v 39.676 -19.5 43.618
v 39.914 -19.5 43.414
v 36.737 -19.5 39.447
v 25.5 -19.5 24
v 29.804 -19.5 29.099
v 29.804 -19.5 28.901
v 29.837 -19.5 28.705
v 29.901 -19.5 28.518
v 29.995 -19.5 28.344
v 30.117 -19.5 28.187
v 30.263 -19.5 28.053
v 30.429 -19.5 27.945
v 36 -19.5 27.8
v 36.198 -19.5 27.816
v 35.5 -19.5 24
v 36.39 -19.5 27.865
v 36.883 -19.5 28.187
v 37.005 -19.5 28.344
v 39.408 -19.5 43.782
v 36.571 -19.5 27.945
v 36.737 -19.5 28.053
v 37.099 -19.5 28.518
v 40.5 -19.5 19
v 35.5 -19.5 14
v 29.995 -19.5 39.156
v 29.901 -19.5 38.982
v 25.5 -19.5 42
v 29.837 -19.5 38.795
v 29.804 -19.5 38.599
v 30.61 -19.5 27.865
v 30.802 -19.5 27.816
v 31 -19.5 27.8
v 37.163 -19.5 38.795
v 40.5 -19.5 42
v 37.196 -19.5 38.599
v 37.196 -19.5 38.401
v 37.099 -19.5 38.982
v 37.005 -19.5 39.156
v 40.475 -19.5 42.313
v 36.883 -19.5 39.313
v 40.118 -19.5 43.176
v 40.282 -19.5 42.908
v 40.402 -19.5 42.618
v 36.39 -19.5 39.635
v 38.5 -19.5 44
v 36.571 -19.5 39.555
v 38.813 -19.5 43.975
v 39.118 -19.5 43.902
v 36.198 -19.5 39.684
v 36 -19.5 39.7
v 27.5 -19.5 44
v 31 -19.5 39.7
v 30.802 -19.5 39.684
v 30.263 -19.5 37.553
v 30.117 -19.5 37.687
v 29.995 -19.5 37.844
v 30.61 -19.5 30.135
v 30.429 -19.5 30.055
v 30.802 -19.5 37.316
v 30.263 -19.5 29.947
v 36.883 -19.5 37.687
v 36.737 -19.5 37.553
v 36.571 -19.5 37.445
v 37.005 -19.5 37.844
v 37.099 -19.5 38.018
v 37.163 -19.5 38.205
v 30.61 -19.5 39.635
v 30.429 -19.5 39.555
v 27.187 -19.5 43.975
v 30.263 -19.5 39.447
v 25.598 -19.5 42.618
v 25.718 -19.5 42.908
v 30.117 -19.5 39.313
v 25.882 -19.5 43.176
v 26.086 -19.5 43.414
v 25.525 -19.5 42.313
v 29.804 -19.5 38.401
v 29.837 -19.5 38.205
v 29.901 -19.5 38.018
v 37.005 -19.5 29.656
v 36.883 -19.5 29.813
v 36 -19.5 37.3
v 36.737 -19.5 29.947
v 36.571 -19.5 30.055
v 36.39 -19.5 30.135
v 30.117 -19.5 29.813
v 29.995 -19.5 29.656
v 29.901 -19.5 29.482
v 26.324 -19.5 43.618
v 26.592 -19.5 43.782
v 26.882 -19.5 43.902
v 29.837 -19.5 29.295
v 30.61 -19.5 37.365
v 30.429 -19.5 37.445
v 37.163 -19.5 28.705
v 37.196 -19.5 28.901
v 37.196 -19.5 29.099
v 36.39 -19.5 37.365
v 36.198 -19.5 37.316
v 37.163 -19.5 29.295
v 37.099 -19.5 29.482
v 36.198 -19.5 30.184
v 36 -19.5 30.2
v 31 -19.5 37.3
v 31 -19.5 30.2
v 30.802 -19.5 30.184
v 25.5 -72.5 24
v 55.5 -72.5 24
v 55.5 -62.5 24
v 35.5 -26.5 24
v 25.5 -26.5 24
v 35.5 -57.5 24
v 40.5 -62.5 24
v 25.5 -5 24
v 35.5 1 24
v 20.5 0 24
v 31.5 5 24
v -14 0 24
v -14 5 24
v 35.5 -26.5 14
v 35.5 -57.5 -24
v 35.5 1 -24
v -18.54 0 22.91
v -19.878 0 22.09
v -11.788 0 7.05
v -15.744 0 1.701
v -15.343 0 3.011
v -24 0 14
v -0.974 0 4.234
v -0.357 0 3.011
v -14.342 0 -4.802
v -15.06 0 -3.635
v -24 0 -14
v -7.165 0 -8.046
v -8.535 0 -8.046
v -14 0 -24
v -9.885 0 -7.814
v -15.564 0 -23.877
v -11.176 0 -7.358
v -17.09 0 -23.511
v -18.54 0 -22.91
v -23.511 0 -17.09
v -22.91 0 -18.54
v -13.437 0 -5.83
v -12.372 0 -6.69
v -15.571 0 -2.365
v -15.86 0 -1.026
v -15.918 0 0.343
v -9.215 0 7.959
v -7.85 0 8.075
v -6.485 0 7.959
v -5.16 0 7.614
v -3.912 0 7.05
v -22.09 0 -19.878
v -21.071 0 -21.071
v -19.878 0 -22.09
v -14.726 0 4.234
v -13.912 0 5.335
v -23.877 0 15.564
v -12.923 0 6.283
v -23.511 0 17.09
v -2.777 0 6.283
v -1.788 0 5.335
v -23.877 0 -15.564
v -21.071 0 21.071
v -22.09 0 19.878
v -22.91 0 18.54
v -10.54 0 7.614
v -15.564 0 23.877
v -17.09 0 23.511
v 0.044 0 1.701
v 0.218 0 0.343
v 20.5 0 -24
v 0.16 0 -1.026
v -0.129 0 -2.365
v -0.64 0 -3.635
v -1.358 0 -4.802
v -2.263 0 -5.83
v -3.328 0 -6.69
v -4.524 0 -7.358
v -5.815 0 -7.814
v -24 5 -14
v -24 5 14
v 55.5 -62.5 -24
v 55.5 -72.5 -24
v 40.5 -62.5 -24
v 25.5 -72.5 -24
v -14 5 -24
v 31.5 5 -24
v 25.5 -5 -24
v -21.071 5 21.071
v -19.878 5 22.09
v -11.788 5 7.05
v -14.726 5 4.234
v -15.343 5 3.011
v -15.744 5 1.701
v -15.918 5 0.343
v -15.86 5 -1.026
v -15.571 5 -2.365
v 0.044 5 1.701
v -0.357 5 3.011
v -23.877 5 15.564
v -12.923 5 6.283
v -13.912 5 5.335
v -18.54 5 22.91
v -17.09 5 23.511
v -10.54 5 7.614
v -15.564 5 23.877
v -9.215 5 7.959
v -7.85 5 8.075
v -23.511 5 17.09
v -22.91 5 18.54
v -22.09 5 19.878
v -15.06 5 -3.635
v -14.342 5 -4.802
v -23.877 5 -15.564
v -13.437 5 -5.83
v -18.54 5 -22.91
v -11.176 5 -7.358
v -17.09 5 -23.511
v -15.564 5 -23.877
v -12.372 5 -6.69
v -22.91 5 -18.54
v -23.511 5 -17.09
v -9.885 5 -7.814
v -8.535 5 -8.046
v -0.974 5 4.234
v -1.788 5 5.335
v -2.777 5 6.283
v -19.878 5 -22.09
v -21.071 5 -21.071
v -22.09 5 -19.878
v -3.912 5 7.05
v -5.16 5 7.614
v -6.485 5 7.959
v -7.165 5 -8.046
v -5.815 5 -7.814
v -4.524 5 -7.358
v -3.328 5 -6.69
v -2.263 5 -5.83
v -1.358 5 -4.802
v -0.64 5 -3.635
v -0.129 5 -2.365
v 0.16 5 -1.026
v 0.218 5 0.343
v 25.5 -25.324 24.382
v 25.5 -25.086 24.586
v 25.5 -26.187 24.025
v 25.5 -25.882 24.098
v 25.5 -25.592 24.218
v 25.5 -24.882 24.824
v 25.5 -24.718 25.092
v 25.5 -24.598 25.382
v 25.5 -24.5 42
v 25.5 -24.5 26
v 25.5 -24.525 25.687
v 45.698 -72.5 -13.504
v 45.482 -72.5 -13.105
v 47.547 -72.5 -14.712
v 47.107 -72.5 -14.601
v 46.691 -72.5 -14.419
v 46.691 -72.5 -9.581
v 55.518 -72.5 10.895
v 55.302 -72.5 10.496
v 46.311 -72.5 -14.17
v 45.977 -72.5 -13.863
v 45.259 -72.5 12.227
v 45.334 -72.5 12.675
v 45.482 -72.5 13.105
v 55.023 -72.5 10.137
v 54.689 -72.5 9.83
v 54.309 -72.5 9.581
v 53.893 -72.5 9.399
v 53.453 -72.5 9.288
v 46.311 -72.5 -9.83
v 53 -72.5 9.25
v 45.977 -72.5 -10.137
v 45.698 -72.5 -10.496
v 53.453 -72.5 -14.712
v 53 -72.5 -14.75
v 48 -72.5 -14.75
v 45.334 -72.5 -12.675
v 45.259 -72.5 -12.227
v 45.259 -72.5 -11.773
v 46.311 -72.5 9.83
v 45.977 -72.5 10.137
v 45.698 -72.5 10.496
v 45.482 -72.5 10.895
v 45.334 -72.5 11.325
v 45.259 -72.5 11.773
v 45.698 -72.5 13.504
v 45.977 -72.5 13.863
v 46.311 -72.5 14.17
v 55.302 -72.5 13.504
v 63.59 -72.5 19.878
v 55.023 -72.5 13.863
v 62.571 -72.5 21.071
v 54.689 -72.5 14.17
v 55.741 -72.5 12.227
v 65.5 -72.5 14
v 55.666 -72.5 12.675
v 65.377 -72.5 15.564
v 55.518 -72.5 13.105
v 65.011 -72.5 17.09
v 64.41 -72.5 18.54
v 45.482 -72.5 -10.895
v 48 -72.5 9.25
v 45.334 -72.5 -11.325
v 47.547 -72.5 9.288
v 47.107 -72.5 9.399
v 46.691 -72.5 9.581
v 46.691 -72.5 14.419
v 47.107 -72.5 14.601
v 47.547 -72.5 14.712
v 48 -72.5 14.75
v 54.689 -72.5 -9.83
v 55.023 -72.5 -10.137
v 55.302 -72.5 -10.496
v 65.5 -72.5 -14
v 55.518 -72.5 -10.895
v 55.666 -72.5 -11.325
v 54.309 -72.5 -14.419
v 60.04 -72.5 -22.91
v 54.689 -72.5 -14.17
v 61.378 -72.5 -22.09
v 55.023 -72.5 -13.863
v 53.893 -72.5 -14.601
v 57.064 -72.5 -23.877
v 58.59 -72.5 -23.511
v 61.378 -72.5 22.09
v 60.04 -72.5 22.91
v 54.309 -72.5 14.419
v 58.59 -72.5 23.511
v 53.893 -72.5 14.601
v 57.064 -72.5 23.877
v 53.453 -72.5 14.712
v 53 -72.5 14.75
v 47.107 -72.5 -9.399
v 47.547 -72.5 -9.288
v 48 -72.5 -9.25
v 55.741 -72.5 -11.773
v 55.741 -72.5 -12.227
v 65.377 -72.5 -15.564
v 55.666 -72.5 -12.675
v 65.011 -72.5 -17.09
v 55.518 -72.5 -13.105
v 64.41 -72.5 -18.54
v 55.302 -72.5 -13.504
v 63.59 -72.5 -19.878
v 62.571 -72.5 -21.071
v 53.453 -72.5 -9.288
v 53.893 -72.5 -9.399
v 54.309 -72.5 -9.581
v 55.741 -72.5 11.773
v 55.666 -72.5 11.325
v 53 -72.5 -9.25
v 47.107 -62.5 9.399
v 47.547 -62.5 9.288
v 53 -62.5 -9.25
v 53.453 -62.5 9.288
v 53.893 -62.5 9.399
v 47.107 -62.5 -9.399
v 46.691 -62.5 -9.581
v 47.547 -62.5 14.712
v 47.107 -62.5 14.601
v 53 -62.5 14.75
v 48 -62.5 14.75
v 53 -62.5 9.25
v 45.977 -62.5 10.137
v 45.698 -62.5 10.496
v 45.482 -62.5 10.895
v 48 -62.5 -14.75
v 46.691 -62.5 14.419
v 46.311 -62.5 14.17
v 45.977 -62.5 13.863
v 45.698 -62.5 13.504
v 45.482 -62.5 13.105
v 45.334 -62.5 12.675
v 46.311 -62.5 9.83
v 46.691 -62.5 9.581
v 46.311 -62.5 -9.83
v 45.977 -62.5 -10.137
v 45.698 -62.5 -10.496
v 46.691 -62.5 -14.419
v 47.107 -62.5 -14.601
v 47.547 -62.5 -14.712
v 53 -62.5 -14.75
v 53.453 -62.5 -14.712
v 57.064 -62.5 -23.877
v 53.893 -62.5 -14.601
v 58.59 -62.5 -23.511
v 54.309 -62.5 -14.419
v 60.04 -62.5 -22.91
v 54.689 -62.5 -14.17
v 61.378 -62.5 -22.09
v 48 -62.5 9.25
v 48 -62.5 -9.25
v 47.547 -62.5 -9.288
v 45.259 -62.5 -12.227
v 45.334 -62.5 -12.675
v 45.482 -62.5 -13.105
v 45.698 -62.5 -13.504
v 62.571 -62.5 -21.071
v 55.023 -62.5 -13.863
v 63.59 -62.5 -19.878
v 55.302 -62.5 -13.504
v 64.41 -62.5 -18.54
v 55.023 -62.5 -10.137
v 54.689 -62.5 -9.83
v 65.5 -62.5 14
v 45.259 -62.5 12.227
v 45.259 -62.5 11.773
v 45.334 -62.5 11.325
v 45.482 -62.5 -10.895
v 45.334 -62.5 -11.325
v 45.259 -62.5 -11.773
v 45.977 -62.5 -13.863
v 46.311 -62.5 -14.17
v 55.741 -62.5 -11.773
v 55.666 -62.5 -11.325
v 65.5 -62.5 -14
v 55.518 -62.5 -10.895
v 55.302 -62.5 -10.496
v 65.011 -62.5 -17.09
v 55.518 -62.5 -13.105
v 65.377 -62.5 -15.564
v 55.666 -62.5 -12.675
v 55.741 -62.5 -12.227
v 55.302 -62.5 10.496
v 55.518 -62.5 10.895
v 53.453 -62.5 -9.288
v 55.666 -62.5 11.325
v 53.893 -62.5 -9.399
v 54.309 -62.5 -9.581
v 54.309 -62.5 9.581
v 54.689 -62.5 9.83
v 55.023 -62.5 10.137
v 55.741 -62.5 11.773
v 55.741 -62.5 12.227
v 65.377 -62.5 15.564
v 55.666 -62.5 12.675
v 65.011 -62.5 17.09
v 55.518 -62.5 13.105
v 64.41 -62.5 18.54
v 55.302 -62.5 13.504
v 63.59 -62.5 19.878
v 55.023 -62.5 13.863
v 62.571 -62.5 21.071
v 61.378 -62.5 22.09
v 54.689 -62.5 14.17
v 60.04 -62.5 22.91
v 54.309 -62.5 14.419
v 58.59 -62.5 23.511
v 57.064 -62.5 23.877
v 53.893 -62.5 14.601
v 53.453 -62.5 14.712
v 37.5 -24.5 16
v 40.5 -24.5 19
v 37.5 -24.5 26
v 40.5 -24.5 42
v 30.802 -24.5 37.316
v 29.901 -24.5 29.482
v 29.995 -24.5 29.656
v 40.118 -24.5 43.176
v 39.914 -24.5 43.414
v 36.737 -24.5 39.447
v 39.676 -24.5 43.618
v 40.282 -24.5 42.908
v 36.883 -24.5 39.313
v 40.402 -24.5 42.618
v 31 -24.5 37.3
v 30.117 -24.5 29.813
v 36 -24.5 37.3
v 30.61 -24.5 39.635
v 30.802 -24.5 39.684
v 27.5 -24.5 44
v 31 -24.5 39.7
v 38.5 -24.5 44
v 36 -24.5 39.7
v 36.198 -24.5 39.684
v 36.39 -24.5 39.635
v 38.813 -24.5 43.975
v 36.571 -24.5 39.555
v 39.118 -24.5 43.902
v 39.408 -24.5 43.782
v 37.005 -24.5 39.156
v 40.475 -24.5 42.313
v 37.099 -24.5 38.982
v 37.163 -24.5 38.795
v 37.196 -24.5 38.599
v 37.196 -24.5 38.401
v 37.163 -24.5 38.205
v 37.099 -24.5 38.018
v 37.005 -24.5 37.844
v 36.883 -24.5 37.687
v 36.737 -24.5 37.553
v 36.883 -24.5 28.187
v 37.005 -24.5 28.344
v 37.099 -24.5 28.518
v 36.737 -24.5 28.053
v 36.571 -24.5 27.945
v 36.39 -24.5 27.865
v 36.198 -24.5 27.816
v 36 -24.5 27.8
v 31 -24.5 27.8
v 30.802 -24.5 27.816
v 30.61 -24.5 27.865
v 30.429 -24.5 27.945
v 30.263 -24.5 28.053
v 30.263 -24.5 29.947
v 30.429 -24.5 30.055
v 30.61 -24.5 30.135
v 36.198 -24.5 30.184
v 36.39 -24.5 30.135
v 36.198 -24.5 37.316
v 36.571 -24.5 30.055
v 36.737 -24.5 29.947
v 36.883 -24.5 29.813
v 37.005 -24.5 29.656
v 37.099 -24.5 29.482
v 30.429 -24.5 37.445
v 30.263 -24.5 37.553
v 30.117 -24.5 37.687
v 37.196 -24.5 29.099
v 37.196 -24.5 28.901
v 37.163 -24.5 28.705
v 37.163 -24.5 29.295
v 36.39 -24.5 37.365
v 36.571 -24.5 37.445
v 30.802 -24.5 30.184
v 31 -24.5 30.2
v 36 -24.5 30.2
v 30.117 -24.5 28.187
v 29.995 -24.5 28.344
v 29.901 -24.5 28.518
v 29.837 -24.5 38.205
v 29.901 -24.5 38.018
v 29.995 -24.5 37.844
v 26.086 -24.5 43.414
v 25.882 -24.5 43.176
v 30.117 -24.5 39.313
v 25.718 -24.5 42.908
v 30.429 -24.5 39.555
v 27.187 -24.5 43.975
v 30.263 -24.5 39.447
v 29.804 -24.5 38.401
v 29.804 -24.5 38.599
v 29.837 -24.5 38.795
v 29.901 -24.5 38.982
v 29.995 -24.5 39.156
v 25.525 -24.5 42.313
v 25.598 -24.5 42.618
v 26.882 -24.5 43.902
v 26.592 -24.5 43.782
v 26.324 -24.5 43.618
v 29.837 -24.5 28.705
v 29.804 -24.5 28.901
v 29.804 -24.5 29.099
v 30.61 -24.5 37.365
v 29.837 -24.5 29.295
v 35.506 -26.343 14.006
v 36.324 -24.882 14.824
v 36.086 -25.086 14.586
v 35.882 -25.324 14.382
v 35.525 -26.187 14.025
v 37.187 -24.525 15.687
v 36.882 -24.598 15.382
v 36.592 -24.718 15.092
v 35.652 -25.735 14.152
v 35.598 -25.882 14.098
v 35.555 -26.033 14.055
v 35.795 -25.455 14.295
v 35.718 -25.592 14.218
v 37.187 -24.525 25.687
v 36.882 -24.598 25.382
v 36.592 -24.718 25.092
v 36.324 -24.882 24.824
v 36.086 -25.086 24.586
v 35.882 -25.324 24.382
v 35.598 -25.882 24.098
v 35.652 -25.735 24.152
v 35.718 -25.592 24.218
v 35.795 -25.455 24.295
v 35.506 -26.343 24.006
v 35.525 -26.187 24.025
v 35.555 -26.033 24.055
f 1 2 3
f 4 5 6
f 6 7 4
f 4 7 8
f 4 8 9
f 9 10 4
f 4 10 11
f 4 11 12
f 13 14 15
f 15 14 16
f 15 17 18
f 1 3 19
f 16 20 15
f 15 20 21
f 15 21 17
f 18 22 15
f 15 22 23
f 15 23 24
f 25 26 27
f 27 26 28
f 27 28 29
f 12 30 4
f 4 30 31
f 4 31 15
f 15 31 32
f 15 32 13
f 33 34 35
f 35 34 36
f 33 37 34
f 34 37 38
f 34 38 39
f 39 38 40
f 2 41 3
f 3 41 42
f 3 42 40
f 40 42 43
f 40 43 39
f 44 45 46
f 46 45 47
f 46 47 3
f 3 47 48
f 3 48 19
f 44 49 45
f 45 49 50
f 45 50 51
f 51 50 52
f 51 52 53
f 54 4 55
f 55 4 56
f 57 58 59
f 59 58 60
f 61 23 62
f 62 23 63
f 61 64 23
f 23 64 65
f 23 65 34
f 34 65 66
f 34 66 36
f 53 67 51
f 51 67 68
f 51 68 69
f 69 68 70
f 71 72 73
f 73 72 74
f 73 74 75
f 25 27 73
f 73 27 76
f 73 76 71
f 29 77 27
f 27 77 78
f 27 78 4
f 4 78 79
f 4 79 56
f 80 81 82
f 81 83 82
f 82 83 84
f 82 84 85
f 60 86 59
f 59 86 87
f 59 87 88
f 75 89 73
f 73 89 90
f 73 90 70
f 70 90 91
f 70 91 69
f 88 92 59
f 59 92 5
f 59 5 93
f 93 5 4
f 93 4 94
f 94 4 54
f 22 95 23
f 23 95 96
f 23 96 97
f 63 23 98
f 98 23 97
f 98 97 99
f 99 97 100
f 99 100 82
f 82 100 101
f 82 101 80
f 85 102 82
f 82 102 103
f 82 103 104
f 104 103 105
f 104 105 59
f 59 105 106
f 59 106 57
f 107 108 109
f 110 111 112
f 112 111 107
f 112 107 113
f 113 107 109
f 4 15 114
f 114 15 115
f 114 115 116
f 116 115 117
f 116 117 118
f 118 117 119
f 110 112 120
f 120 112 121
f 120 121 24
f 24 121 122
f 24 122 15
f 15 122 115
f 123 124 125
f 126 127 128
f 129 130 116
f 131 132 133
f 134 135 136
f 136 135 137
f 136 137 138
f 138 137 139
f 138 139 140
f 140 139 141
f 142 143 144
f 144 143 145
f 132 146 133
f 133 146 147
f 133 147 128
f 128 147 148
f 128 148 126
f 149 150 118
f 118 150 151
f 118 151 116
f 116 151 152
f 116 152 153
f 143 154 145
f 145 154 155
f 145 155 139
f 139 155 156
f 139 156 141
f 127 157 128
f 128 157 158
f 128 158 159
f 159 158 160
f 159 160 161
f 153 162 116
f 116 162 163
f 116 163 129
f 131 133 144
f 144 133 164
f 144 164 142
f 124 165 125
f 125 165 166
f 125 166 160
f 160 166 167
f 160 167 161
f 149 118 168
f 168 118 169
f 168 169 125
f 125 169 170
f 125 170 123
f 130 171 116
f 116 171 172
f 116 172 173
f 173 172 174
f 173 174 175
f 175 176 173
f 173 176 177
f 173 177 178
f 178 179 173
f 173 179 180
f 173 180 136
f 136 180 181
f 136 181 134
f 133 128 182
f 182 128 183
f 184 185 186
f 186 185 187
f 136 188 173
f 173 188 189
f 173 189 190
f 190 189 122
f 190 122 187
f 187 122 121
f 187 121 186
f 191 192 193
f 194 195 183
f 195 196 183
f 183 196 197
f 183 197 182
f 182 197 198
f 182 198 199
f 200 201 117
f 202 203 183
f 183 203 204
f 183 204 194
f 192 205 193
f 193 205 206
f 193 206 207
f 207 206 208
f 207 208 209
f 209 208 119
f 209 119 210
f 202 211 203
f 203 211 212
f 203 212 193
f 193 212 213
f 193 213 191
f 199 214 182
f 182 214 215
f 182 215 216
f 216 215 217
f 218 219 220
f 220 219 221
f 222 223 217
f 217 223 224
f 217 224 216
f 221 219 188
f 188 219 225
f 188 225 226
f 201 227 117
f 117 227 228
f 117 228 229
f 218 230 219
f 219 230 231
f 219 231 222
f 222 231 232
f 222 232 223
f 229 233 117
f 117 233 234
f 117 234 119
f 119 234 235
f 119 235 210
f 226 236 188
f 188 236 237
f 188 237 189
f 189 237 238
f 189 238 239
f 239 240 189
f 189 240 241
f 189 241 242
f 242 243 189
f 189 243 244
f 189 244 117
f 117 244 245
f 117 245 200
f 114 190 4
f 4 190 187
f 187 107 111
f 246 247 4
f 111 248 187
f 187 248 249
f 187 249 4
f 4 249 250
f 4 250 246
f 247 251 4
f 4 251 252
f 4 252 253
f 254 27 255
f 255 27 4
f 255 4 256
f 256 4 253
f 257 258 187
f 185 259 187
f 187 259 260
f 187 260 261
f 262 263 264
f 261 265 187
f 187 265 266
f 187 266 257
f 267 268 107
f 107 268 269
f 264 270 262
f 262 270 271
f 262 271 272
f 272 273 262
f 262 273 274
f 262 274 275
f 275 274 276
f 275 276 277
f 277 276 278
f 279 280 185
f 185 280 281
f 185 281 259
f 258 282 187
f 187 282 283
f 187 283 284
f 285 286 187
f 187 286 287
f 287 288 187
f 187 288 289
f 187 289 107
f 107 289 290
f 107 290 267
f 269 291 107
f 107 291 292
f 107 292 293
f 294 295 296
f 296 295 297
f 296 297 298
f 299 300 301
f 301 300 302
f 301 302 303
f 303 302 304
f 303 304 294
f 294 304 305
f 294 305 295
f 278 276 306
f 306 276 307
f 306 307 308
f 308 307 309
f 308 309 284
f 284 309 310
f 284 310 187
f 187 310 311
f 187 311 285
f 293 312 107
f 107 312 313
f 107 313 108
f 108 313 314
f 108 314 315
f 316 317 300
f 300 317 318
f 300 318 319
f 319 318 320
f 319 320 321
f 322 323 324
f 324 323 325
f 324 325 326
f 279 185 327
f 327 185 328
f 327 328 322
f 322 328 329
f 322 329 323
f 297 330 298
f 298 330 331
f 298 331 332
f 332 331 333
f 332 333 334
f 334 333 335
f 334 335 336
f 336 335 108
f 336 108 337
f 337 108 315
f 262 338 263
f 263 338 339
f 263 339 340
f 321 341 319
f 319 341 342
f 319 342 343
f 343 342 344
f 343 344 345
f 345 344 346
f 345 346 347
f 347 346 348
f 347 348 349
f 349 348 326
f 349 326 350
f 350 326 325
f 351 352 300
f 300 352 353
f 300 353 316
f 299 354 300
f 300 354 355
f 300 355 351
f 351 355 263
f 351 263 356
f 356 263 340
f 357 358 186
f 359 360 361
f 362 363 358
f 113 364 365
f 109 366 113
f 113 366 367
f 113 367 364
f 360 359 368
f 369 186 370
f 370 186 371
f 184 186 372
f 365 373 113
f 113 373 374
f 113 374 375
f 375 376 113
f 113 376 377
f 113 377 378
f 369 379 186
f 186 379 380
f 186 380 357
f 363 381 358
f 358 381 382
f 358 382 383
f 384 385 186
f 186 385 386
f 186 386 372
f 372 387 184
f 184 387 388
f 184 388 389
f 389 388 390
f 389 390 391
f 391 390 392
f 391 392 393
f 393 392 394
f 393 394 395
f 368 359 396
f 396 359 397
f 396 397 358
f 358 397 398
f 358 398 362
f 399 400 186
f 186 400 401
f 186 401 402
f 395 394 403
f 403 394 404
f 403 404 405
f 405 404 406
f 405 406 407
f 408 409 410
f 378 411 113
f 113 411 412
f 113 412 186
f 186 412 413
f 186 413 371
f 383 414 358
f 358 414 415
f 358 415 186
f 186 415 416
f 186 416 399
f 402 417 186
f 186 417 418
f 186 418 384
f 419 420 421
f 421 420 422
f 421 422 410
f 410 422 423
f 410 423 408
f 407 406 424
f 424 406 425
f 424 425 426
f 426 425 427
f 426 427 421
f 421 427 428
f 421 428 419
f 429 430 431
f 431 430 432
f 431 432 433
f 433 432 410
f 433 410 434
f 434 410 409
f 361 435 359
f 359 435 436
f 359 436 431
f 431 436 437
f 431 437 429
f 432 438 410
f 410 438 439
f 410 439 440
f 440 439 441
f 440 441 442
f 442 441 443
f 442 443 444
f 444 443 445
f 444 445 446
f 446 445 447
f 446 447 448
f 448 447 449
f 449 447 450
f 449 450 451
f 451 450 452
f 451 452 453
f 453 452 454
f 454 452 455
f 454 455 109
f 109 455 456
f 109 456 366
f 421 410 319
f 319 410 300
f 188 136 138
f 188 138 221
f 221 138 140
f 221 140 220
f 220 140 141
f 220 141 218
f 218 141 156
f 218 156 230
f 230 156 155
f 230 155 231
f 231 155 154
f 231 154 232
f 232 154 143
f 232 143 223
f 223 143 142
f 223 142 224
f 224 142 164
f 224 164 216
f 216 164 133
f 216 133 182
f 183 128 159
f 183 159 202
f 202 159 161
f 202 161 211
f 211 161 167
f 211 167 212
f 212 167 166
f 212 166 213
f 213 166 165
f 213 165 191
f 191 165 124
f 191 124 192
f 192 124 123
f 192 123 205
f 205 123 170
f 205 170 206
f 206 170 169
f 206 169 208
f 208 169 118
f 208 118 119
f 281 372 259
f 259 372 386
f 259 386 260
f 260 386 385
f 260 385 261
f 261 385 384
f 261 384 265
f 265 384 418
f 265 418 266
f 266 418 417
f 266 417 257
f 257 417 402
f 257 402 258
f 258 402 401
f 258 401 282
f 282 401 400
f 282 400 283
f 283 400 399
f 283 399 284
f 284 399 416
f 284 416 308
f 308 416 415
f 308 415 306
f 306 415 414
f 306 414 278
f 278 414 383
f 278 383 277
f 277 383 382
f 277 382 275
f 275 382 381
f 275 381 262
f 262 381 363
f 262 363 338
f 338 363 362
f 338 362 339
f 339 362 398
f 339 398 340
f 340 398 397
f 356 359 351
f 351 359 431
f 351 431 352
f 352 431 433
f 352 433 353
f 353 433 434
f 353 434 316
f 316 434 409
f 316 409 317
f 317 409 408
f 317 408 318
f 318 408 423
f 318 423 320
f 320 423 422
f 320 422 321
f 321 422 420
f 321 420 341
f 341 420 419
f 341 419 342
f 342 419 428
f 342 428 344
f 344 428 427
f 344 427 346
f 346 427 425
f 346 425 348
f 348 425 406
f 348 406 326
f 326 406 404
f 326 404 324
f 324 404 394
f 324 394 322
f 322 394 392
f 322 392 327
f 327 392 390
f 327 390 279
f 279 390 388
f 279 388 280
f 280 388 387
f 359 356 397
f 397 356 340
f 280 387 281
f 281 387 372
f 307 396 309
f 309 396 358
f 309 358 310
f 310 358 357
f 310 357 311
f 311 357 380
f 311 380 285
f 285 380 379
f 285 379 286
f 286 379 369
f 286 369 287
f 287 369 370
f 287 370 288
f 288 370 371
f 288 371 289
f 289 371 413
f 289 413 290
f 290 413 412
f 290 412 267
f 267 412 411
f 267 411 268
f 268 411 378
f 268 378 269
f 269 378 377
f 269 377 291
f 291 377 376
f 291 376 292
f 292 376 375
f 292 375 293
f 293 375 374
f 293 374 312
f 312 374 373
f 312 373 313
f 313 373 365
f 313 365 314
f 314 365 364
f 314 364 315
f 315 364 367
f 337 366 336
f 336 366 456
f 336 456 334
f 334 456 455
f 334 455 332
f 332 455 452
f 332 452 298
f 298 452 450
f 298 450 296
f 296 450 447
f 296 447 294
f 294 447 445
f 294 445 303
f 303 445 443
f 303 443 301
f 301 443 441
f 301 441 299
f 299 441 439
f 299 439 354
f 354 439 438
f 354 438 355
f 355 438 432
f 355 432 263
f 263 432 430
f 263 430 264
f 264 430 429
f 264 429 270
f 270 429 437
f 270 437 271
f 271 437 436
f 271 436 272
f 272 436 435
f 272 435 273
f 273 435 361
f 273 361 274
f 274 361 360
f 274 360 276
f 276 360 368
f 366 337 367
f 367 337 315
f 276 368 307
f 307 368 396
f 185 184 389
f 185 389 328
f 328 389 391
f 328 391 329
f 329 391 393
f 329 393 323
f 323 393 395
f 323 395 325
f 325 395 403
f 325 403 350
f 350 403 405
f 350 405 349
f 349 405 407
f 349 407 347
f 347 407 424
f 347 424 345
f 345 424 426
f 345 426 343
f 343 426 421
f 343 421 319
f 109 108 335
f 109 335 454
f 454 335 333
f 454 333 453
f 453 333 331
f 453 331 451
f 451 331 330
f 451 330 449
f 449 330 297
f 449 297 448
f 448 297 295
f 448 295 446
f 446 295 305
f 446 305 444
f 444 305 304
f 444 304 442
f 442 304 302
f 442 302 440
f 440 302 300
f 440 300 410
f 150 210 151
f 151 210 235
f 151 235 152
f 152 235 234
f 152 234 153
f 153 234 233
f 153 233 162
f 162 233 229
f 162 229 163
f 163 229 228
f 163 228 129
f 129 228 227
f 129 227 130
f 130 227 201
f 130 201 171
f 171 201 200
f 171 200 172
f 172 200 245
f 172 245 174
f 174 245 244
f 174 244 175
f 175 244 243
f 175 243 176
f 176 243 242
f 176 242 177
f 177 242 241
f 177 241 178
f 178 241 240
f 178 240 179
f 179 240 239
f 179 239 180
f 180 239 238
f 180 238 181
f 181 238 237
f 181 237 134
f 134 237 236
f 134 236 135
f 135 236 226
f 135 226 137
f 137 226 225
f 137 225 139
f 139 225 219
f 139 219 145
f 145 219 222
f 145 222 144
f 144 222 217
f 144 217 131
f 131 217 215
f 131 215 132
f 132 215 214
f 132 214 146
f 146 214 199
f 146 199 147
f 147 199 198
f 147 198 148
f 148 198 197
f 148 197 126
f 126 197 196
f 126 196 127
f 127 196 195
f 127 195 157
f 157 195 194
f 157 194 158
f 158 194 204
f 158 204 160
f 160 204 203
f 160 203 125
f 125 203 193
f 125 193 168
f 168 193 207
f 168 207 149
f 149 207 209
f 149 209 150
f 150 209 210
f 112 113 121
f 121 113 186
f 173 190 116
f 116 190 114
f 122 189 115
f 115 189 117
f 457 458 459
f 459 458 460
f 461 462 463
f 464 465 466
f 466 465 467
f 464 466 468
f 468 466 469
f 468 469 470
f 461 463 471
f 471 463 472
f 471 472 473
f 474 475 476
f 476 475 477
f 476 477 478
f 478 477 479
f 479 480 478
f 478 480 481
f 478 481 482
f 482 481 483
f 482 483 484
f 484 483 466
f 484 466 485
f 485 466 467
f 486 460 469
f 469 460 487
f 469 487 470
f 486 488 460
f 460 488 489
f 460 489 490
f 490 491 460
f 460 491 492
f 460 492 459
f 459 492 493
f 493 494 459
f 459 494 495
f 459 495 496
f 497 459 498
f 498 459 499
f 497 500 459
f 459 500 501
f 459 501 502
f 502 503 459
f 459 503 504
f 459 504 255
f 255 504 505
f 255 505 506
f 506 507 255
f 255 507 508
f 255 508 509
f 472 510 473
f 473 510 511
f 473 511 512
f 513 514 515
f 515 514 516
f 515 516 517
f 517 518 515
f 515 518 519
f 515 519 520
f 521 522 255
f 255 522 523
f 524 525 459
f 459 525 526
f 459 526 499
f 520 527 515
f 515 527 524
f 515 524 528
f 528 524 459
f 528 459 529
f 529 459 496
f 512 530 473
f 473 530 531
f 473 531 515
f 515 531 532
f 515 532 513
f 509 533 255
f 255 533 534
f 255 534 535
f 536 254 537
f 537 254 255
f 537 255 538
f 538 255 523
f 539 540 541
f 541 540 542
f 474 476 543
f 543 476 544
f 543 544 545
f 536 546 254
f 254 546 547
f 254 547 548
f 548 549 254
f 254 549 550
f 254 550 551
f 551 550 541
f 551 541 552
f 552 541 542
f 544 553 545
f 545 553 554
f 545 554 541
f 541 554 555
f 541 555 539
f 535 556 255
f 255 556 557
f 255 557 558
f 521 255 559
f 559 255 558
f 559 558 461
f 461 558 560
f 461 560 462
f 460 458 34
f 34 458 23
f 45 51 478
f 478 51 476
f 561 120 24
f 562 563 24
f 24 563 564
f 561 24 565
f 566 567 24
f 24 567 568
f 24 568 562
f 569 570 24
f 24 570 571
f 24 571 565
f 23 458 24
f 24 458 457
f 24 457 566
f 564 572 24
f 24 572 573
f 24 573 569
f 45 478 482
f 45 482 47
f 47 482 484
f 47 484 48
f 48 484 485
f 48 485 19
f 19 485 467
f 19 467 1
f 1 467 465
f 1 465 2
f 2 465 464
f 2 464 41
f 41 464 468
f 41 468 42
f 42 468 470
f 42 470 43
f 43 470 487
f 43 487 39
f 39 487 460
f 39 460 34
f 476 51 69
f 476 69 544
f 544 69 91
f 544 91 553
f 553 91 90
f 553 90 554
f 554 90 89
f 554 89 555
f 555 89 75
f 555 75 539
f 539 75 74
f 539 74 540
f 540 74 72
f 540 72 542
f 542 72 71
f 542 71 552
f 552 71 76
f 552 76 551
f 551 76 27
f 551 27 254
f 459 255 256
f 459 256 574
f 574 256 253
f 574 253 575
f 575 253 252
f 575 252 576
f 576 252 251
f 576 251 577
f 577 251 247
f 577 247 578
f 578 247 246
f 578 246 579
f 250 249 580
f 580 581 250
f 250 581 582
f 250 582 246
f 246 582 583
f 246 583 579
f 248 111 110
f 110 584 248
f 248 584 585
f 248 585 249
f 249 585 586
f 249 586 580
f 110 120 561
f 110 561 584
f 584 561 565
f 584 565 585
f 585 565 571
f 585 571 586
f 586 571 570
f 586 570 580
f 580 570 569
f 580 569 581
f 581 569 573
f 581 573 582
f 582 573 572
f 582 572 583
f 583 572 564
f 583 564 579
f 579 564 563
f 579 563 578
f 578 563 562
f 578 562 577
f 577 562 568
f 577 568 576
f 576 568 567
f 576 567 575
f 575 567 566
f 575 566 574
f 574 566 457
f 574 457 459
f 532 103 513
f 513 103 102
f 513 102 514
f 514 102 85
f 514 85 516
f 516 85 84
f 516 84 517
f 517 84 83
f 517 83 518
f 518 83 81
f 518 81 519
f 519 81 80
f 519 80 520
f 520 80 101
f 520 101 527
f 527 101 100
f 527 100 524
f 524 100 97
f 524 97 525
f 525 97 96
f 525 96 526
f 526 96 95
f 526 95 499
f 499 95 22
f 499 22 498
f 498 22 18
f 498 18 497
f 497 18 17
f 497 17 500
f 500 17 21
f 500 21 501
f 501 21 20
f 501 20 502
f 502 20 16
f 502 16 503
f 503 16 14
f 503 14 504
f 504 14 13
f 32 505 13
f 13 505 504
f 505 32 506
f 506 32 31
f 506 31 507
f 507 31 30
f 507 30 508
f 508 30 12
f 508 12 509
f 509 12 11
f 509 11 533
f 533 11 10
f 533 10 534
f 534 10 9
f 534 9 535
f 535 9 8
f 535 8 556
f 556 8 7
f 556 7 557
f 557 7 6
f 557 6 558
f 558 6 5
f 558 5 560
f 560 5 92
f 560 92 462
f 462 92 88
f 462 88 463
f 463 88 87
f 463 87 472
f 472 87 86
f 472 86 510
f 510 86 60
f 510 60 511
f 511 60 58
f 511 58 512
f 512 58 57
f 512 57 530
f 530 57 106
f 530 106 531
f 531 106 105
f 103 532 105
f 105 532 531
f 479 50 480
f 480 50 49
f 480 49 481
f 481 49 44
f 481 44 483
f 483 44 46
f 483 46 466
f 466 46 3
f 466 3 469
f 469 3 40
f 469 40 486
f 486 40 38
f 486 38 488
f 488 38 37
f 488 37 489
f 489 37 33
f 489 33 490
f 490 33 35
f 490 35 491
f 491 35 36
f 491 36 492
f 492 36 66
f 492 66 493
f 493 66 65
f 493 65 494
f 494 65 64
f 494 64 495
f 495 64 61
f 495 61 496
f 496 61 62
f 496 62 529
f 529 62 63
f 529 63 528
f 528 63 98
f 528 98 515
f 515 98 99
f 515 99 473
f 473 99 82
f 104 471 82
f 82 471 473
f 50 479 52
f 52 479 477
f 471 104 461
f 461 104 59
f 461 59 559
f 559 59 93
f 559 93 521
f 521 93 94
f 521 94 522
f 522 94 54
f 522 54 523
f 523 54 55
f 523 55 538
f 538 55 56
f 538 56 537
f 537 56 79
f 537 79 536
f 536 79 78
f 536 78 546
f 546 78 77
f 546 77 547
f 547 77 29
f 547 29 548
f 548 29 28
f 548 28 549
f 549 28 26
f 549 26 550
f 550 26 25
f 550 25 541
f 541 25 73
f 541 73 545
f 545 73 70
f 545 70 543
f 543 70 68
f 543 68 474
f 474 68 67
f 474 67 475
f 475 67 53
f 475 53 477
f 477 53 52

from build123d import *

# Parameters (mm, degrees)
SKETCH1_W                 = 59.5
SKETCH1_H                 = 48
BOSS_EXTRUDE1_DEPTH       = 5
SKETCH2_W                 = 10
SKETCH2_H                 = 48
BOSS_EXTRUDE2_DEPTH       = 72.5
SKETCH3_W                 = 48
SKETCH3_H                 = 10
BOSS_EXTRUDE3_DEPTH       = 30
FILLET1_R                 = 10
F_1_0MM_START             = -72.5
F_1_0MM_DOWEL_SLOT1_DEPTH = 10
FILLET2_R                 = 10
M6_CLEARANCE_HOLE1_D      = 16.15
CHAMFER1_SIZE             = 5
CHAMFER2_SIZE             = 4
SKETCH14_W                = 15
SKETCH14_H                = 5
BOSS_EXTRUDE4_DEPTH       = 20
CHAMFER3_SIZE             = 10
FILLET3_R                 = 2
M2_START                  = -24.5
M2_CLEARANCE_SLOT1_DEPTH  = 5


# Read off the part's stored shape, not the designer's step: Ø1.0mm Dowel Slot1, M2 Clearance Slot1
with BuildPart() as part:
    # Sketch1 → Boss-Extrude1 (new body)
    with BuildSketch(Plane(origin=(0, 0, 0), x_dir=(1, 0, 0), z_dir=(0, 1, 0))):
        with Locations((5.75, 0)):
            Rectangle(SKETCH1_W, SKETCH1_H)
    extrude(amount=BOSS_EXTRUDE1_DEPTH)

    # Sketch2 → Boss-Extrude2 (add)
    with BuildSketch(Plane.XZ):
        with Locations((30.5, 0)):
            Rectangle(SKETCH2_W, SKETCH2_H)
    extrude(amount=BOSS_EXTRUDE2_DEPTH)

    # Sketch3 → Boss-Extrude3 (add)
    with BuildSketch(Plane(origin=(35.5, 0, 0), x_dir=(0, 0, -1), z_dir=(1, 0, 0))):
        with Locations((0, -67.5)):
            Rectangle(SKETCH3_W, SKETCH3_H)
    extrude(amount=BOSS_EXTRUDE3_DEPTH)

    # Fillet1
    fillet1_edges = [part.edges().sort_by_distance(p)[0] for p in [
        (-24, 2.5, -24),
        (-24, 2.5, 24),
    ]]
    fillet(fillet1_edges, radius=FILLET1_R)

    # Ø1.0mm Dowel Slot1 outline → Ø1.0mm Dowel Slot1 (cut)
    with BuildSketch(Plane(origin=(0, 0, 0), x_dir=(1, 0, 0), z_dir=(0, 1, 0)).offset(F_1_0MM_START)):
        with BuildLine():
            Line((53, 14.75), (48, 14.75))
            ThreePointArc((48, 14.75), (45.25, 12), (48, 9.25))
            Line((48, 9.25), (53, 9.25))
            ThreePointArc((53, 9.25), (55.75, 12), (53, 14.75))
        make_face()
        with BuildLine():
            Line((53, -9.25), (48, -9.25))
            ThreePointArc((48, -9.25), (45.25, -12), (48, -14.75))
            Line((48, -14.75), (53, -14.75))
            ThreePointArc((53, -14.75), (55.75, -12), (53, -9.25))
        make_face()
    extrude(amount=F_1_0MM_DOWEL_SLOT1_DEPTH, mode=Mode.SUBTRACT)

    # Fillet2
    fillet2_edges = [part.edges().sort_by_distance(p)[0] for p in [
        (65.5, -67.5, 24),
        (65.5, -67.5, -24),
    ]]
    fillet(fillet2_edges, radius=FILLET2_R)

    # M6 Clearance Hole1 (through all)
    with Locations(Plane(origin=(0, 5, 0), x_dir=(1, 0, 0), z_dir=(0, 1, 0))):
        with Locations((-7.85, 0)):
            Hole(M6_CLEARANCE_HOLE1_D / 2)

    # Chamfer1
    chamfer1_edges = [part.edges().sort_by_distance(p)[0] for p in [
        (25.5, 0, 0),
        (35.5, -62.5, 0),
    ]]
    chamfer(chamfer1_edges, length=CHAMFER1_SIZE)

    # Chamfer2
    chamfer2_edges = [part.edges().sort_by_distance(p)[0] for p in [
        (35.5, 5, 0),
    ]]
    chamfer(chamfer2_edges, length=CHAMFER2_SIZE)

    # Sketch14 → Boss-Extrude4 (add)
    with BuildSketch(Plane.XY.offset(24)):
        with Locations((33, -22)):
            Rectangle(SKETCH14_W, SKETCH14_H)
    extrude(amount=BOSS_EXTRUDE4_DEPTH)

    # Chamfer3
    # the kernel refuses this chamfer: 10 mm, written as the material it adds along each edge
    with BuildSketch(Plane(origin=(35.5, -19.5, 24), x_dir=(-0.027495876610586317, 0, -0.9996219169112968), z_dir=(0, -1, 0))) as chamfer3_piece_1_section:
        Polygon((CHAMFER3_SIZE * 0.999621916911, CHAMFER3_SIZE * 0.0274958766106), (-CHAMFER3_SIZE * 0.0274958766106, CHAMFER3_SIZE * 0.999621916911), (0, 0), align=None)
    chamfer3_piece_1 = extrude(amount=5, mode=Mode.PRIVATE)
    chamfer3_piece_1 = split(chamfer3_piece_1, bisect_by=Plane(origin=(40.5, -22, 20.111111111), z_dir=(-1, 0, 0)), keep=Keep.TOP, mode=Mode.PRIVATE)
    add(chamfer3_piece_1)

    # Fillet3
    fillet3_edges = [part.edges().sort_by_distance(p)[0] for p in [
        (30.5, -24.5, 24),
        (25.5, -22, 44),
        (40.5, -22, 44),
        (35.5, -24.5, 19),
    ]]
    fillet(fillet3_edges, radius=FILLET3_R)

    # M2 Clearance Slot1 outline → M2 Clearance Slot1 (cut)
    with BuildSketch(Plane(origin=(0, 0, 0), x_dir=(1, 0, 0), z_dir=(0, 1, 0)).offset(M2_START)):
        with BuildLine():
            Line((31, -30.2), (36, -30.2))
            ThreePointArc((36, -30.2), (37.2, -29), (36, -27.8))
            Line((36, -27.8), (31, -27.8))
            ThreePointArc((31, -27.8), (29.8, -29), (31, -30.2))
        make_face()
        with BuildLine():
            Line((31, -39.7), (36, -39.7))
            ThreePointArc((36, -39.7), (37.2, -38.5), (36, -37.3))
            Line((36, -37.3), (31, -37.3))
            ThreePointArc((31, -37.3), (29.8, -38.5), (31, -39.7))
        make_face()
    extrude(amount=M2_CLEARANCE_SLOT1_DEPTH, mode=Mode.SUBTRACT)


solid = part.part
